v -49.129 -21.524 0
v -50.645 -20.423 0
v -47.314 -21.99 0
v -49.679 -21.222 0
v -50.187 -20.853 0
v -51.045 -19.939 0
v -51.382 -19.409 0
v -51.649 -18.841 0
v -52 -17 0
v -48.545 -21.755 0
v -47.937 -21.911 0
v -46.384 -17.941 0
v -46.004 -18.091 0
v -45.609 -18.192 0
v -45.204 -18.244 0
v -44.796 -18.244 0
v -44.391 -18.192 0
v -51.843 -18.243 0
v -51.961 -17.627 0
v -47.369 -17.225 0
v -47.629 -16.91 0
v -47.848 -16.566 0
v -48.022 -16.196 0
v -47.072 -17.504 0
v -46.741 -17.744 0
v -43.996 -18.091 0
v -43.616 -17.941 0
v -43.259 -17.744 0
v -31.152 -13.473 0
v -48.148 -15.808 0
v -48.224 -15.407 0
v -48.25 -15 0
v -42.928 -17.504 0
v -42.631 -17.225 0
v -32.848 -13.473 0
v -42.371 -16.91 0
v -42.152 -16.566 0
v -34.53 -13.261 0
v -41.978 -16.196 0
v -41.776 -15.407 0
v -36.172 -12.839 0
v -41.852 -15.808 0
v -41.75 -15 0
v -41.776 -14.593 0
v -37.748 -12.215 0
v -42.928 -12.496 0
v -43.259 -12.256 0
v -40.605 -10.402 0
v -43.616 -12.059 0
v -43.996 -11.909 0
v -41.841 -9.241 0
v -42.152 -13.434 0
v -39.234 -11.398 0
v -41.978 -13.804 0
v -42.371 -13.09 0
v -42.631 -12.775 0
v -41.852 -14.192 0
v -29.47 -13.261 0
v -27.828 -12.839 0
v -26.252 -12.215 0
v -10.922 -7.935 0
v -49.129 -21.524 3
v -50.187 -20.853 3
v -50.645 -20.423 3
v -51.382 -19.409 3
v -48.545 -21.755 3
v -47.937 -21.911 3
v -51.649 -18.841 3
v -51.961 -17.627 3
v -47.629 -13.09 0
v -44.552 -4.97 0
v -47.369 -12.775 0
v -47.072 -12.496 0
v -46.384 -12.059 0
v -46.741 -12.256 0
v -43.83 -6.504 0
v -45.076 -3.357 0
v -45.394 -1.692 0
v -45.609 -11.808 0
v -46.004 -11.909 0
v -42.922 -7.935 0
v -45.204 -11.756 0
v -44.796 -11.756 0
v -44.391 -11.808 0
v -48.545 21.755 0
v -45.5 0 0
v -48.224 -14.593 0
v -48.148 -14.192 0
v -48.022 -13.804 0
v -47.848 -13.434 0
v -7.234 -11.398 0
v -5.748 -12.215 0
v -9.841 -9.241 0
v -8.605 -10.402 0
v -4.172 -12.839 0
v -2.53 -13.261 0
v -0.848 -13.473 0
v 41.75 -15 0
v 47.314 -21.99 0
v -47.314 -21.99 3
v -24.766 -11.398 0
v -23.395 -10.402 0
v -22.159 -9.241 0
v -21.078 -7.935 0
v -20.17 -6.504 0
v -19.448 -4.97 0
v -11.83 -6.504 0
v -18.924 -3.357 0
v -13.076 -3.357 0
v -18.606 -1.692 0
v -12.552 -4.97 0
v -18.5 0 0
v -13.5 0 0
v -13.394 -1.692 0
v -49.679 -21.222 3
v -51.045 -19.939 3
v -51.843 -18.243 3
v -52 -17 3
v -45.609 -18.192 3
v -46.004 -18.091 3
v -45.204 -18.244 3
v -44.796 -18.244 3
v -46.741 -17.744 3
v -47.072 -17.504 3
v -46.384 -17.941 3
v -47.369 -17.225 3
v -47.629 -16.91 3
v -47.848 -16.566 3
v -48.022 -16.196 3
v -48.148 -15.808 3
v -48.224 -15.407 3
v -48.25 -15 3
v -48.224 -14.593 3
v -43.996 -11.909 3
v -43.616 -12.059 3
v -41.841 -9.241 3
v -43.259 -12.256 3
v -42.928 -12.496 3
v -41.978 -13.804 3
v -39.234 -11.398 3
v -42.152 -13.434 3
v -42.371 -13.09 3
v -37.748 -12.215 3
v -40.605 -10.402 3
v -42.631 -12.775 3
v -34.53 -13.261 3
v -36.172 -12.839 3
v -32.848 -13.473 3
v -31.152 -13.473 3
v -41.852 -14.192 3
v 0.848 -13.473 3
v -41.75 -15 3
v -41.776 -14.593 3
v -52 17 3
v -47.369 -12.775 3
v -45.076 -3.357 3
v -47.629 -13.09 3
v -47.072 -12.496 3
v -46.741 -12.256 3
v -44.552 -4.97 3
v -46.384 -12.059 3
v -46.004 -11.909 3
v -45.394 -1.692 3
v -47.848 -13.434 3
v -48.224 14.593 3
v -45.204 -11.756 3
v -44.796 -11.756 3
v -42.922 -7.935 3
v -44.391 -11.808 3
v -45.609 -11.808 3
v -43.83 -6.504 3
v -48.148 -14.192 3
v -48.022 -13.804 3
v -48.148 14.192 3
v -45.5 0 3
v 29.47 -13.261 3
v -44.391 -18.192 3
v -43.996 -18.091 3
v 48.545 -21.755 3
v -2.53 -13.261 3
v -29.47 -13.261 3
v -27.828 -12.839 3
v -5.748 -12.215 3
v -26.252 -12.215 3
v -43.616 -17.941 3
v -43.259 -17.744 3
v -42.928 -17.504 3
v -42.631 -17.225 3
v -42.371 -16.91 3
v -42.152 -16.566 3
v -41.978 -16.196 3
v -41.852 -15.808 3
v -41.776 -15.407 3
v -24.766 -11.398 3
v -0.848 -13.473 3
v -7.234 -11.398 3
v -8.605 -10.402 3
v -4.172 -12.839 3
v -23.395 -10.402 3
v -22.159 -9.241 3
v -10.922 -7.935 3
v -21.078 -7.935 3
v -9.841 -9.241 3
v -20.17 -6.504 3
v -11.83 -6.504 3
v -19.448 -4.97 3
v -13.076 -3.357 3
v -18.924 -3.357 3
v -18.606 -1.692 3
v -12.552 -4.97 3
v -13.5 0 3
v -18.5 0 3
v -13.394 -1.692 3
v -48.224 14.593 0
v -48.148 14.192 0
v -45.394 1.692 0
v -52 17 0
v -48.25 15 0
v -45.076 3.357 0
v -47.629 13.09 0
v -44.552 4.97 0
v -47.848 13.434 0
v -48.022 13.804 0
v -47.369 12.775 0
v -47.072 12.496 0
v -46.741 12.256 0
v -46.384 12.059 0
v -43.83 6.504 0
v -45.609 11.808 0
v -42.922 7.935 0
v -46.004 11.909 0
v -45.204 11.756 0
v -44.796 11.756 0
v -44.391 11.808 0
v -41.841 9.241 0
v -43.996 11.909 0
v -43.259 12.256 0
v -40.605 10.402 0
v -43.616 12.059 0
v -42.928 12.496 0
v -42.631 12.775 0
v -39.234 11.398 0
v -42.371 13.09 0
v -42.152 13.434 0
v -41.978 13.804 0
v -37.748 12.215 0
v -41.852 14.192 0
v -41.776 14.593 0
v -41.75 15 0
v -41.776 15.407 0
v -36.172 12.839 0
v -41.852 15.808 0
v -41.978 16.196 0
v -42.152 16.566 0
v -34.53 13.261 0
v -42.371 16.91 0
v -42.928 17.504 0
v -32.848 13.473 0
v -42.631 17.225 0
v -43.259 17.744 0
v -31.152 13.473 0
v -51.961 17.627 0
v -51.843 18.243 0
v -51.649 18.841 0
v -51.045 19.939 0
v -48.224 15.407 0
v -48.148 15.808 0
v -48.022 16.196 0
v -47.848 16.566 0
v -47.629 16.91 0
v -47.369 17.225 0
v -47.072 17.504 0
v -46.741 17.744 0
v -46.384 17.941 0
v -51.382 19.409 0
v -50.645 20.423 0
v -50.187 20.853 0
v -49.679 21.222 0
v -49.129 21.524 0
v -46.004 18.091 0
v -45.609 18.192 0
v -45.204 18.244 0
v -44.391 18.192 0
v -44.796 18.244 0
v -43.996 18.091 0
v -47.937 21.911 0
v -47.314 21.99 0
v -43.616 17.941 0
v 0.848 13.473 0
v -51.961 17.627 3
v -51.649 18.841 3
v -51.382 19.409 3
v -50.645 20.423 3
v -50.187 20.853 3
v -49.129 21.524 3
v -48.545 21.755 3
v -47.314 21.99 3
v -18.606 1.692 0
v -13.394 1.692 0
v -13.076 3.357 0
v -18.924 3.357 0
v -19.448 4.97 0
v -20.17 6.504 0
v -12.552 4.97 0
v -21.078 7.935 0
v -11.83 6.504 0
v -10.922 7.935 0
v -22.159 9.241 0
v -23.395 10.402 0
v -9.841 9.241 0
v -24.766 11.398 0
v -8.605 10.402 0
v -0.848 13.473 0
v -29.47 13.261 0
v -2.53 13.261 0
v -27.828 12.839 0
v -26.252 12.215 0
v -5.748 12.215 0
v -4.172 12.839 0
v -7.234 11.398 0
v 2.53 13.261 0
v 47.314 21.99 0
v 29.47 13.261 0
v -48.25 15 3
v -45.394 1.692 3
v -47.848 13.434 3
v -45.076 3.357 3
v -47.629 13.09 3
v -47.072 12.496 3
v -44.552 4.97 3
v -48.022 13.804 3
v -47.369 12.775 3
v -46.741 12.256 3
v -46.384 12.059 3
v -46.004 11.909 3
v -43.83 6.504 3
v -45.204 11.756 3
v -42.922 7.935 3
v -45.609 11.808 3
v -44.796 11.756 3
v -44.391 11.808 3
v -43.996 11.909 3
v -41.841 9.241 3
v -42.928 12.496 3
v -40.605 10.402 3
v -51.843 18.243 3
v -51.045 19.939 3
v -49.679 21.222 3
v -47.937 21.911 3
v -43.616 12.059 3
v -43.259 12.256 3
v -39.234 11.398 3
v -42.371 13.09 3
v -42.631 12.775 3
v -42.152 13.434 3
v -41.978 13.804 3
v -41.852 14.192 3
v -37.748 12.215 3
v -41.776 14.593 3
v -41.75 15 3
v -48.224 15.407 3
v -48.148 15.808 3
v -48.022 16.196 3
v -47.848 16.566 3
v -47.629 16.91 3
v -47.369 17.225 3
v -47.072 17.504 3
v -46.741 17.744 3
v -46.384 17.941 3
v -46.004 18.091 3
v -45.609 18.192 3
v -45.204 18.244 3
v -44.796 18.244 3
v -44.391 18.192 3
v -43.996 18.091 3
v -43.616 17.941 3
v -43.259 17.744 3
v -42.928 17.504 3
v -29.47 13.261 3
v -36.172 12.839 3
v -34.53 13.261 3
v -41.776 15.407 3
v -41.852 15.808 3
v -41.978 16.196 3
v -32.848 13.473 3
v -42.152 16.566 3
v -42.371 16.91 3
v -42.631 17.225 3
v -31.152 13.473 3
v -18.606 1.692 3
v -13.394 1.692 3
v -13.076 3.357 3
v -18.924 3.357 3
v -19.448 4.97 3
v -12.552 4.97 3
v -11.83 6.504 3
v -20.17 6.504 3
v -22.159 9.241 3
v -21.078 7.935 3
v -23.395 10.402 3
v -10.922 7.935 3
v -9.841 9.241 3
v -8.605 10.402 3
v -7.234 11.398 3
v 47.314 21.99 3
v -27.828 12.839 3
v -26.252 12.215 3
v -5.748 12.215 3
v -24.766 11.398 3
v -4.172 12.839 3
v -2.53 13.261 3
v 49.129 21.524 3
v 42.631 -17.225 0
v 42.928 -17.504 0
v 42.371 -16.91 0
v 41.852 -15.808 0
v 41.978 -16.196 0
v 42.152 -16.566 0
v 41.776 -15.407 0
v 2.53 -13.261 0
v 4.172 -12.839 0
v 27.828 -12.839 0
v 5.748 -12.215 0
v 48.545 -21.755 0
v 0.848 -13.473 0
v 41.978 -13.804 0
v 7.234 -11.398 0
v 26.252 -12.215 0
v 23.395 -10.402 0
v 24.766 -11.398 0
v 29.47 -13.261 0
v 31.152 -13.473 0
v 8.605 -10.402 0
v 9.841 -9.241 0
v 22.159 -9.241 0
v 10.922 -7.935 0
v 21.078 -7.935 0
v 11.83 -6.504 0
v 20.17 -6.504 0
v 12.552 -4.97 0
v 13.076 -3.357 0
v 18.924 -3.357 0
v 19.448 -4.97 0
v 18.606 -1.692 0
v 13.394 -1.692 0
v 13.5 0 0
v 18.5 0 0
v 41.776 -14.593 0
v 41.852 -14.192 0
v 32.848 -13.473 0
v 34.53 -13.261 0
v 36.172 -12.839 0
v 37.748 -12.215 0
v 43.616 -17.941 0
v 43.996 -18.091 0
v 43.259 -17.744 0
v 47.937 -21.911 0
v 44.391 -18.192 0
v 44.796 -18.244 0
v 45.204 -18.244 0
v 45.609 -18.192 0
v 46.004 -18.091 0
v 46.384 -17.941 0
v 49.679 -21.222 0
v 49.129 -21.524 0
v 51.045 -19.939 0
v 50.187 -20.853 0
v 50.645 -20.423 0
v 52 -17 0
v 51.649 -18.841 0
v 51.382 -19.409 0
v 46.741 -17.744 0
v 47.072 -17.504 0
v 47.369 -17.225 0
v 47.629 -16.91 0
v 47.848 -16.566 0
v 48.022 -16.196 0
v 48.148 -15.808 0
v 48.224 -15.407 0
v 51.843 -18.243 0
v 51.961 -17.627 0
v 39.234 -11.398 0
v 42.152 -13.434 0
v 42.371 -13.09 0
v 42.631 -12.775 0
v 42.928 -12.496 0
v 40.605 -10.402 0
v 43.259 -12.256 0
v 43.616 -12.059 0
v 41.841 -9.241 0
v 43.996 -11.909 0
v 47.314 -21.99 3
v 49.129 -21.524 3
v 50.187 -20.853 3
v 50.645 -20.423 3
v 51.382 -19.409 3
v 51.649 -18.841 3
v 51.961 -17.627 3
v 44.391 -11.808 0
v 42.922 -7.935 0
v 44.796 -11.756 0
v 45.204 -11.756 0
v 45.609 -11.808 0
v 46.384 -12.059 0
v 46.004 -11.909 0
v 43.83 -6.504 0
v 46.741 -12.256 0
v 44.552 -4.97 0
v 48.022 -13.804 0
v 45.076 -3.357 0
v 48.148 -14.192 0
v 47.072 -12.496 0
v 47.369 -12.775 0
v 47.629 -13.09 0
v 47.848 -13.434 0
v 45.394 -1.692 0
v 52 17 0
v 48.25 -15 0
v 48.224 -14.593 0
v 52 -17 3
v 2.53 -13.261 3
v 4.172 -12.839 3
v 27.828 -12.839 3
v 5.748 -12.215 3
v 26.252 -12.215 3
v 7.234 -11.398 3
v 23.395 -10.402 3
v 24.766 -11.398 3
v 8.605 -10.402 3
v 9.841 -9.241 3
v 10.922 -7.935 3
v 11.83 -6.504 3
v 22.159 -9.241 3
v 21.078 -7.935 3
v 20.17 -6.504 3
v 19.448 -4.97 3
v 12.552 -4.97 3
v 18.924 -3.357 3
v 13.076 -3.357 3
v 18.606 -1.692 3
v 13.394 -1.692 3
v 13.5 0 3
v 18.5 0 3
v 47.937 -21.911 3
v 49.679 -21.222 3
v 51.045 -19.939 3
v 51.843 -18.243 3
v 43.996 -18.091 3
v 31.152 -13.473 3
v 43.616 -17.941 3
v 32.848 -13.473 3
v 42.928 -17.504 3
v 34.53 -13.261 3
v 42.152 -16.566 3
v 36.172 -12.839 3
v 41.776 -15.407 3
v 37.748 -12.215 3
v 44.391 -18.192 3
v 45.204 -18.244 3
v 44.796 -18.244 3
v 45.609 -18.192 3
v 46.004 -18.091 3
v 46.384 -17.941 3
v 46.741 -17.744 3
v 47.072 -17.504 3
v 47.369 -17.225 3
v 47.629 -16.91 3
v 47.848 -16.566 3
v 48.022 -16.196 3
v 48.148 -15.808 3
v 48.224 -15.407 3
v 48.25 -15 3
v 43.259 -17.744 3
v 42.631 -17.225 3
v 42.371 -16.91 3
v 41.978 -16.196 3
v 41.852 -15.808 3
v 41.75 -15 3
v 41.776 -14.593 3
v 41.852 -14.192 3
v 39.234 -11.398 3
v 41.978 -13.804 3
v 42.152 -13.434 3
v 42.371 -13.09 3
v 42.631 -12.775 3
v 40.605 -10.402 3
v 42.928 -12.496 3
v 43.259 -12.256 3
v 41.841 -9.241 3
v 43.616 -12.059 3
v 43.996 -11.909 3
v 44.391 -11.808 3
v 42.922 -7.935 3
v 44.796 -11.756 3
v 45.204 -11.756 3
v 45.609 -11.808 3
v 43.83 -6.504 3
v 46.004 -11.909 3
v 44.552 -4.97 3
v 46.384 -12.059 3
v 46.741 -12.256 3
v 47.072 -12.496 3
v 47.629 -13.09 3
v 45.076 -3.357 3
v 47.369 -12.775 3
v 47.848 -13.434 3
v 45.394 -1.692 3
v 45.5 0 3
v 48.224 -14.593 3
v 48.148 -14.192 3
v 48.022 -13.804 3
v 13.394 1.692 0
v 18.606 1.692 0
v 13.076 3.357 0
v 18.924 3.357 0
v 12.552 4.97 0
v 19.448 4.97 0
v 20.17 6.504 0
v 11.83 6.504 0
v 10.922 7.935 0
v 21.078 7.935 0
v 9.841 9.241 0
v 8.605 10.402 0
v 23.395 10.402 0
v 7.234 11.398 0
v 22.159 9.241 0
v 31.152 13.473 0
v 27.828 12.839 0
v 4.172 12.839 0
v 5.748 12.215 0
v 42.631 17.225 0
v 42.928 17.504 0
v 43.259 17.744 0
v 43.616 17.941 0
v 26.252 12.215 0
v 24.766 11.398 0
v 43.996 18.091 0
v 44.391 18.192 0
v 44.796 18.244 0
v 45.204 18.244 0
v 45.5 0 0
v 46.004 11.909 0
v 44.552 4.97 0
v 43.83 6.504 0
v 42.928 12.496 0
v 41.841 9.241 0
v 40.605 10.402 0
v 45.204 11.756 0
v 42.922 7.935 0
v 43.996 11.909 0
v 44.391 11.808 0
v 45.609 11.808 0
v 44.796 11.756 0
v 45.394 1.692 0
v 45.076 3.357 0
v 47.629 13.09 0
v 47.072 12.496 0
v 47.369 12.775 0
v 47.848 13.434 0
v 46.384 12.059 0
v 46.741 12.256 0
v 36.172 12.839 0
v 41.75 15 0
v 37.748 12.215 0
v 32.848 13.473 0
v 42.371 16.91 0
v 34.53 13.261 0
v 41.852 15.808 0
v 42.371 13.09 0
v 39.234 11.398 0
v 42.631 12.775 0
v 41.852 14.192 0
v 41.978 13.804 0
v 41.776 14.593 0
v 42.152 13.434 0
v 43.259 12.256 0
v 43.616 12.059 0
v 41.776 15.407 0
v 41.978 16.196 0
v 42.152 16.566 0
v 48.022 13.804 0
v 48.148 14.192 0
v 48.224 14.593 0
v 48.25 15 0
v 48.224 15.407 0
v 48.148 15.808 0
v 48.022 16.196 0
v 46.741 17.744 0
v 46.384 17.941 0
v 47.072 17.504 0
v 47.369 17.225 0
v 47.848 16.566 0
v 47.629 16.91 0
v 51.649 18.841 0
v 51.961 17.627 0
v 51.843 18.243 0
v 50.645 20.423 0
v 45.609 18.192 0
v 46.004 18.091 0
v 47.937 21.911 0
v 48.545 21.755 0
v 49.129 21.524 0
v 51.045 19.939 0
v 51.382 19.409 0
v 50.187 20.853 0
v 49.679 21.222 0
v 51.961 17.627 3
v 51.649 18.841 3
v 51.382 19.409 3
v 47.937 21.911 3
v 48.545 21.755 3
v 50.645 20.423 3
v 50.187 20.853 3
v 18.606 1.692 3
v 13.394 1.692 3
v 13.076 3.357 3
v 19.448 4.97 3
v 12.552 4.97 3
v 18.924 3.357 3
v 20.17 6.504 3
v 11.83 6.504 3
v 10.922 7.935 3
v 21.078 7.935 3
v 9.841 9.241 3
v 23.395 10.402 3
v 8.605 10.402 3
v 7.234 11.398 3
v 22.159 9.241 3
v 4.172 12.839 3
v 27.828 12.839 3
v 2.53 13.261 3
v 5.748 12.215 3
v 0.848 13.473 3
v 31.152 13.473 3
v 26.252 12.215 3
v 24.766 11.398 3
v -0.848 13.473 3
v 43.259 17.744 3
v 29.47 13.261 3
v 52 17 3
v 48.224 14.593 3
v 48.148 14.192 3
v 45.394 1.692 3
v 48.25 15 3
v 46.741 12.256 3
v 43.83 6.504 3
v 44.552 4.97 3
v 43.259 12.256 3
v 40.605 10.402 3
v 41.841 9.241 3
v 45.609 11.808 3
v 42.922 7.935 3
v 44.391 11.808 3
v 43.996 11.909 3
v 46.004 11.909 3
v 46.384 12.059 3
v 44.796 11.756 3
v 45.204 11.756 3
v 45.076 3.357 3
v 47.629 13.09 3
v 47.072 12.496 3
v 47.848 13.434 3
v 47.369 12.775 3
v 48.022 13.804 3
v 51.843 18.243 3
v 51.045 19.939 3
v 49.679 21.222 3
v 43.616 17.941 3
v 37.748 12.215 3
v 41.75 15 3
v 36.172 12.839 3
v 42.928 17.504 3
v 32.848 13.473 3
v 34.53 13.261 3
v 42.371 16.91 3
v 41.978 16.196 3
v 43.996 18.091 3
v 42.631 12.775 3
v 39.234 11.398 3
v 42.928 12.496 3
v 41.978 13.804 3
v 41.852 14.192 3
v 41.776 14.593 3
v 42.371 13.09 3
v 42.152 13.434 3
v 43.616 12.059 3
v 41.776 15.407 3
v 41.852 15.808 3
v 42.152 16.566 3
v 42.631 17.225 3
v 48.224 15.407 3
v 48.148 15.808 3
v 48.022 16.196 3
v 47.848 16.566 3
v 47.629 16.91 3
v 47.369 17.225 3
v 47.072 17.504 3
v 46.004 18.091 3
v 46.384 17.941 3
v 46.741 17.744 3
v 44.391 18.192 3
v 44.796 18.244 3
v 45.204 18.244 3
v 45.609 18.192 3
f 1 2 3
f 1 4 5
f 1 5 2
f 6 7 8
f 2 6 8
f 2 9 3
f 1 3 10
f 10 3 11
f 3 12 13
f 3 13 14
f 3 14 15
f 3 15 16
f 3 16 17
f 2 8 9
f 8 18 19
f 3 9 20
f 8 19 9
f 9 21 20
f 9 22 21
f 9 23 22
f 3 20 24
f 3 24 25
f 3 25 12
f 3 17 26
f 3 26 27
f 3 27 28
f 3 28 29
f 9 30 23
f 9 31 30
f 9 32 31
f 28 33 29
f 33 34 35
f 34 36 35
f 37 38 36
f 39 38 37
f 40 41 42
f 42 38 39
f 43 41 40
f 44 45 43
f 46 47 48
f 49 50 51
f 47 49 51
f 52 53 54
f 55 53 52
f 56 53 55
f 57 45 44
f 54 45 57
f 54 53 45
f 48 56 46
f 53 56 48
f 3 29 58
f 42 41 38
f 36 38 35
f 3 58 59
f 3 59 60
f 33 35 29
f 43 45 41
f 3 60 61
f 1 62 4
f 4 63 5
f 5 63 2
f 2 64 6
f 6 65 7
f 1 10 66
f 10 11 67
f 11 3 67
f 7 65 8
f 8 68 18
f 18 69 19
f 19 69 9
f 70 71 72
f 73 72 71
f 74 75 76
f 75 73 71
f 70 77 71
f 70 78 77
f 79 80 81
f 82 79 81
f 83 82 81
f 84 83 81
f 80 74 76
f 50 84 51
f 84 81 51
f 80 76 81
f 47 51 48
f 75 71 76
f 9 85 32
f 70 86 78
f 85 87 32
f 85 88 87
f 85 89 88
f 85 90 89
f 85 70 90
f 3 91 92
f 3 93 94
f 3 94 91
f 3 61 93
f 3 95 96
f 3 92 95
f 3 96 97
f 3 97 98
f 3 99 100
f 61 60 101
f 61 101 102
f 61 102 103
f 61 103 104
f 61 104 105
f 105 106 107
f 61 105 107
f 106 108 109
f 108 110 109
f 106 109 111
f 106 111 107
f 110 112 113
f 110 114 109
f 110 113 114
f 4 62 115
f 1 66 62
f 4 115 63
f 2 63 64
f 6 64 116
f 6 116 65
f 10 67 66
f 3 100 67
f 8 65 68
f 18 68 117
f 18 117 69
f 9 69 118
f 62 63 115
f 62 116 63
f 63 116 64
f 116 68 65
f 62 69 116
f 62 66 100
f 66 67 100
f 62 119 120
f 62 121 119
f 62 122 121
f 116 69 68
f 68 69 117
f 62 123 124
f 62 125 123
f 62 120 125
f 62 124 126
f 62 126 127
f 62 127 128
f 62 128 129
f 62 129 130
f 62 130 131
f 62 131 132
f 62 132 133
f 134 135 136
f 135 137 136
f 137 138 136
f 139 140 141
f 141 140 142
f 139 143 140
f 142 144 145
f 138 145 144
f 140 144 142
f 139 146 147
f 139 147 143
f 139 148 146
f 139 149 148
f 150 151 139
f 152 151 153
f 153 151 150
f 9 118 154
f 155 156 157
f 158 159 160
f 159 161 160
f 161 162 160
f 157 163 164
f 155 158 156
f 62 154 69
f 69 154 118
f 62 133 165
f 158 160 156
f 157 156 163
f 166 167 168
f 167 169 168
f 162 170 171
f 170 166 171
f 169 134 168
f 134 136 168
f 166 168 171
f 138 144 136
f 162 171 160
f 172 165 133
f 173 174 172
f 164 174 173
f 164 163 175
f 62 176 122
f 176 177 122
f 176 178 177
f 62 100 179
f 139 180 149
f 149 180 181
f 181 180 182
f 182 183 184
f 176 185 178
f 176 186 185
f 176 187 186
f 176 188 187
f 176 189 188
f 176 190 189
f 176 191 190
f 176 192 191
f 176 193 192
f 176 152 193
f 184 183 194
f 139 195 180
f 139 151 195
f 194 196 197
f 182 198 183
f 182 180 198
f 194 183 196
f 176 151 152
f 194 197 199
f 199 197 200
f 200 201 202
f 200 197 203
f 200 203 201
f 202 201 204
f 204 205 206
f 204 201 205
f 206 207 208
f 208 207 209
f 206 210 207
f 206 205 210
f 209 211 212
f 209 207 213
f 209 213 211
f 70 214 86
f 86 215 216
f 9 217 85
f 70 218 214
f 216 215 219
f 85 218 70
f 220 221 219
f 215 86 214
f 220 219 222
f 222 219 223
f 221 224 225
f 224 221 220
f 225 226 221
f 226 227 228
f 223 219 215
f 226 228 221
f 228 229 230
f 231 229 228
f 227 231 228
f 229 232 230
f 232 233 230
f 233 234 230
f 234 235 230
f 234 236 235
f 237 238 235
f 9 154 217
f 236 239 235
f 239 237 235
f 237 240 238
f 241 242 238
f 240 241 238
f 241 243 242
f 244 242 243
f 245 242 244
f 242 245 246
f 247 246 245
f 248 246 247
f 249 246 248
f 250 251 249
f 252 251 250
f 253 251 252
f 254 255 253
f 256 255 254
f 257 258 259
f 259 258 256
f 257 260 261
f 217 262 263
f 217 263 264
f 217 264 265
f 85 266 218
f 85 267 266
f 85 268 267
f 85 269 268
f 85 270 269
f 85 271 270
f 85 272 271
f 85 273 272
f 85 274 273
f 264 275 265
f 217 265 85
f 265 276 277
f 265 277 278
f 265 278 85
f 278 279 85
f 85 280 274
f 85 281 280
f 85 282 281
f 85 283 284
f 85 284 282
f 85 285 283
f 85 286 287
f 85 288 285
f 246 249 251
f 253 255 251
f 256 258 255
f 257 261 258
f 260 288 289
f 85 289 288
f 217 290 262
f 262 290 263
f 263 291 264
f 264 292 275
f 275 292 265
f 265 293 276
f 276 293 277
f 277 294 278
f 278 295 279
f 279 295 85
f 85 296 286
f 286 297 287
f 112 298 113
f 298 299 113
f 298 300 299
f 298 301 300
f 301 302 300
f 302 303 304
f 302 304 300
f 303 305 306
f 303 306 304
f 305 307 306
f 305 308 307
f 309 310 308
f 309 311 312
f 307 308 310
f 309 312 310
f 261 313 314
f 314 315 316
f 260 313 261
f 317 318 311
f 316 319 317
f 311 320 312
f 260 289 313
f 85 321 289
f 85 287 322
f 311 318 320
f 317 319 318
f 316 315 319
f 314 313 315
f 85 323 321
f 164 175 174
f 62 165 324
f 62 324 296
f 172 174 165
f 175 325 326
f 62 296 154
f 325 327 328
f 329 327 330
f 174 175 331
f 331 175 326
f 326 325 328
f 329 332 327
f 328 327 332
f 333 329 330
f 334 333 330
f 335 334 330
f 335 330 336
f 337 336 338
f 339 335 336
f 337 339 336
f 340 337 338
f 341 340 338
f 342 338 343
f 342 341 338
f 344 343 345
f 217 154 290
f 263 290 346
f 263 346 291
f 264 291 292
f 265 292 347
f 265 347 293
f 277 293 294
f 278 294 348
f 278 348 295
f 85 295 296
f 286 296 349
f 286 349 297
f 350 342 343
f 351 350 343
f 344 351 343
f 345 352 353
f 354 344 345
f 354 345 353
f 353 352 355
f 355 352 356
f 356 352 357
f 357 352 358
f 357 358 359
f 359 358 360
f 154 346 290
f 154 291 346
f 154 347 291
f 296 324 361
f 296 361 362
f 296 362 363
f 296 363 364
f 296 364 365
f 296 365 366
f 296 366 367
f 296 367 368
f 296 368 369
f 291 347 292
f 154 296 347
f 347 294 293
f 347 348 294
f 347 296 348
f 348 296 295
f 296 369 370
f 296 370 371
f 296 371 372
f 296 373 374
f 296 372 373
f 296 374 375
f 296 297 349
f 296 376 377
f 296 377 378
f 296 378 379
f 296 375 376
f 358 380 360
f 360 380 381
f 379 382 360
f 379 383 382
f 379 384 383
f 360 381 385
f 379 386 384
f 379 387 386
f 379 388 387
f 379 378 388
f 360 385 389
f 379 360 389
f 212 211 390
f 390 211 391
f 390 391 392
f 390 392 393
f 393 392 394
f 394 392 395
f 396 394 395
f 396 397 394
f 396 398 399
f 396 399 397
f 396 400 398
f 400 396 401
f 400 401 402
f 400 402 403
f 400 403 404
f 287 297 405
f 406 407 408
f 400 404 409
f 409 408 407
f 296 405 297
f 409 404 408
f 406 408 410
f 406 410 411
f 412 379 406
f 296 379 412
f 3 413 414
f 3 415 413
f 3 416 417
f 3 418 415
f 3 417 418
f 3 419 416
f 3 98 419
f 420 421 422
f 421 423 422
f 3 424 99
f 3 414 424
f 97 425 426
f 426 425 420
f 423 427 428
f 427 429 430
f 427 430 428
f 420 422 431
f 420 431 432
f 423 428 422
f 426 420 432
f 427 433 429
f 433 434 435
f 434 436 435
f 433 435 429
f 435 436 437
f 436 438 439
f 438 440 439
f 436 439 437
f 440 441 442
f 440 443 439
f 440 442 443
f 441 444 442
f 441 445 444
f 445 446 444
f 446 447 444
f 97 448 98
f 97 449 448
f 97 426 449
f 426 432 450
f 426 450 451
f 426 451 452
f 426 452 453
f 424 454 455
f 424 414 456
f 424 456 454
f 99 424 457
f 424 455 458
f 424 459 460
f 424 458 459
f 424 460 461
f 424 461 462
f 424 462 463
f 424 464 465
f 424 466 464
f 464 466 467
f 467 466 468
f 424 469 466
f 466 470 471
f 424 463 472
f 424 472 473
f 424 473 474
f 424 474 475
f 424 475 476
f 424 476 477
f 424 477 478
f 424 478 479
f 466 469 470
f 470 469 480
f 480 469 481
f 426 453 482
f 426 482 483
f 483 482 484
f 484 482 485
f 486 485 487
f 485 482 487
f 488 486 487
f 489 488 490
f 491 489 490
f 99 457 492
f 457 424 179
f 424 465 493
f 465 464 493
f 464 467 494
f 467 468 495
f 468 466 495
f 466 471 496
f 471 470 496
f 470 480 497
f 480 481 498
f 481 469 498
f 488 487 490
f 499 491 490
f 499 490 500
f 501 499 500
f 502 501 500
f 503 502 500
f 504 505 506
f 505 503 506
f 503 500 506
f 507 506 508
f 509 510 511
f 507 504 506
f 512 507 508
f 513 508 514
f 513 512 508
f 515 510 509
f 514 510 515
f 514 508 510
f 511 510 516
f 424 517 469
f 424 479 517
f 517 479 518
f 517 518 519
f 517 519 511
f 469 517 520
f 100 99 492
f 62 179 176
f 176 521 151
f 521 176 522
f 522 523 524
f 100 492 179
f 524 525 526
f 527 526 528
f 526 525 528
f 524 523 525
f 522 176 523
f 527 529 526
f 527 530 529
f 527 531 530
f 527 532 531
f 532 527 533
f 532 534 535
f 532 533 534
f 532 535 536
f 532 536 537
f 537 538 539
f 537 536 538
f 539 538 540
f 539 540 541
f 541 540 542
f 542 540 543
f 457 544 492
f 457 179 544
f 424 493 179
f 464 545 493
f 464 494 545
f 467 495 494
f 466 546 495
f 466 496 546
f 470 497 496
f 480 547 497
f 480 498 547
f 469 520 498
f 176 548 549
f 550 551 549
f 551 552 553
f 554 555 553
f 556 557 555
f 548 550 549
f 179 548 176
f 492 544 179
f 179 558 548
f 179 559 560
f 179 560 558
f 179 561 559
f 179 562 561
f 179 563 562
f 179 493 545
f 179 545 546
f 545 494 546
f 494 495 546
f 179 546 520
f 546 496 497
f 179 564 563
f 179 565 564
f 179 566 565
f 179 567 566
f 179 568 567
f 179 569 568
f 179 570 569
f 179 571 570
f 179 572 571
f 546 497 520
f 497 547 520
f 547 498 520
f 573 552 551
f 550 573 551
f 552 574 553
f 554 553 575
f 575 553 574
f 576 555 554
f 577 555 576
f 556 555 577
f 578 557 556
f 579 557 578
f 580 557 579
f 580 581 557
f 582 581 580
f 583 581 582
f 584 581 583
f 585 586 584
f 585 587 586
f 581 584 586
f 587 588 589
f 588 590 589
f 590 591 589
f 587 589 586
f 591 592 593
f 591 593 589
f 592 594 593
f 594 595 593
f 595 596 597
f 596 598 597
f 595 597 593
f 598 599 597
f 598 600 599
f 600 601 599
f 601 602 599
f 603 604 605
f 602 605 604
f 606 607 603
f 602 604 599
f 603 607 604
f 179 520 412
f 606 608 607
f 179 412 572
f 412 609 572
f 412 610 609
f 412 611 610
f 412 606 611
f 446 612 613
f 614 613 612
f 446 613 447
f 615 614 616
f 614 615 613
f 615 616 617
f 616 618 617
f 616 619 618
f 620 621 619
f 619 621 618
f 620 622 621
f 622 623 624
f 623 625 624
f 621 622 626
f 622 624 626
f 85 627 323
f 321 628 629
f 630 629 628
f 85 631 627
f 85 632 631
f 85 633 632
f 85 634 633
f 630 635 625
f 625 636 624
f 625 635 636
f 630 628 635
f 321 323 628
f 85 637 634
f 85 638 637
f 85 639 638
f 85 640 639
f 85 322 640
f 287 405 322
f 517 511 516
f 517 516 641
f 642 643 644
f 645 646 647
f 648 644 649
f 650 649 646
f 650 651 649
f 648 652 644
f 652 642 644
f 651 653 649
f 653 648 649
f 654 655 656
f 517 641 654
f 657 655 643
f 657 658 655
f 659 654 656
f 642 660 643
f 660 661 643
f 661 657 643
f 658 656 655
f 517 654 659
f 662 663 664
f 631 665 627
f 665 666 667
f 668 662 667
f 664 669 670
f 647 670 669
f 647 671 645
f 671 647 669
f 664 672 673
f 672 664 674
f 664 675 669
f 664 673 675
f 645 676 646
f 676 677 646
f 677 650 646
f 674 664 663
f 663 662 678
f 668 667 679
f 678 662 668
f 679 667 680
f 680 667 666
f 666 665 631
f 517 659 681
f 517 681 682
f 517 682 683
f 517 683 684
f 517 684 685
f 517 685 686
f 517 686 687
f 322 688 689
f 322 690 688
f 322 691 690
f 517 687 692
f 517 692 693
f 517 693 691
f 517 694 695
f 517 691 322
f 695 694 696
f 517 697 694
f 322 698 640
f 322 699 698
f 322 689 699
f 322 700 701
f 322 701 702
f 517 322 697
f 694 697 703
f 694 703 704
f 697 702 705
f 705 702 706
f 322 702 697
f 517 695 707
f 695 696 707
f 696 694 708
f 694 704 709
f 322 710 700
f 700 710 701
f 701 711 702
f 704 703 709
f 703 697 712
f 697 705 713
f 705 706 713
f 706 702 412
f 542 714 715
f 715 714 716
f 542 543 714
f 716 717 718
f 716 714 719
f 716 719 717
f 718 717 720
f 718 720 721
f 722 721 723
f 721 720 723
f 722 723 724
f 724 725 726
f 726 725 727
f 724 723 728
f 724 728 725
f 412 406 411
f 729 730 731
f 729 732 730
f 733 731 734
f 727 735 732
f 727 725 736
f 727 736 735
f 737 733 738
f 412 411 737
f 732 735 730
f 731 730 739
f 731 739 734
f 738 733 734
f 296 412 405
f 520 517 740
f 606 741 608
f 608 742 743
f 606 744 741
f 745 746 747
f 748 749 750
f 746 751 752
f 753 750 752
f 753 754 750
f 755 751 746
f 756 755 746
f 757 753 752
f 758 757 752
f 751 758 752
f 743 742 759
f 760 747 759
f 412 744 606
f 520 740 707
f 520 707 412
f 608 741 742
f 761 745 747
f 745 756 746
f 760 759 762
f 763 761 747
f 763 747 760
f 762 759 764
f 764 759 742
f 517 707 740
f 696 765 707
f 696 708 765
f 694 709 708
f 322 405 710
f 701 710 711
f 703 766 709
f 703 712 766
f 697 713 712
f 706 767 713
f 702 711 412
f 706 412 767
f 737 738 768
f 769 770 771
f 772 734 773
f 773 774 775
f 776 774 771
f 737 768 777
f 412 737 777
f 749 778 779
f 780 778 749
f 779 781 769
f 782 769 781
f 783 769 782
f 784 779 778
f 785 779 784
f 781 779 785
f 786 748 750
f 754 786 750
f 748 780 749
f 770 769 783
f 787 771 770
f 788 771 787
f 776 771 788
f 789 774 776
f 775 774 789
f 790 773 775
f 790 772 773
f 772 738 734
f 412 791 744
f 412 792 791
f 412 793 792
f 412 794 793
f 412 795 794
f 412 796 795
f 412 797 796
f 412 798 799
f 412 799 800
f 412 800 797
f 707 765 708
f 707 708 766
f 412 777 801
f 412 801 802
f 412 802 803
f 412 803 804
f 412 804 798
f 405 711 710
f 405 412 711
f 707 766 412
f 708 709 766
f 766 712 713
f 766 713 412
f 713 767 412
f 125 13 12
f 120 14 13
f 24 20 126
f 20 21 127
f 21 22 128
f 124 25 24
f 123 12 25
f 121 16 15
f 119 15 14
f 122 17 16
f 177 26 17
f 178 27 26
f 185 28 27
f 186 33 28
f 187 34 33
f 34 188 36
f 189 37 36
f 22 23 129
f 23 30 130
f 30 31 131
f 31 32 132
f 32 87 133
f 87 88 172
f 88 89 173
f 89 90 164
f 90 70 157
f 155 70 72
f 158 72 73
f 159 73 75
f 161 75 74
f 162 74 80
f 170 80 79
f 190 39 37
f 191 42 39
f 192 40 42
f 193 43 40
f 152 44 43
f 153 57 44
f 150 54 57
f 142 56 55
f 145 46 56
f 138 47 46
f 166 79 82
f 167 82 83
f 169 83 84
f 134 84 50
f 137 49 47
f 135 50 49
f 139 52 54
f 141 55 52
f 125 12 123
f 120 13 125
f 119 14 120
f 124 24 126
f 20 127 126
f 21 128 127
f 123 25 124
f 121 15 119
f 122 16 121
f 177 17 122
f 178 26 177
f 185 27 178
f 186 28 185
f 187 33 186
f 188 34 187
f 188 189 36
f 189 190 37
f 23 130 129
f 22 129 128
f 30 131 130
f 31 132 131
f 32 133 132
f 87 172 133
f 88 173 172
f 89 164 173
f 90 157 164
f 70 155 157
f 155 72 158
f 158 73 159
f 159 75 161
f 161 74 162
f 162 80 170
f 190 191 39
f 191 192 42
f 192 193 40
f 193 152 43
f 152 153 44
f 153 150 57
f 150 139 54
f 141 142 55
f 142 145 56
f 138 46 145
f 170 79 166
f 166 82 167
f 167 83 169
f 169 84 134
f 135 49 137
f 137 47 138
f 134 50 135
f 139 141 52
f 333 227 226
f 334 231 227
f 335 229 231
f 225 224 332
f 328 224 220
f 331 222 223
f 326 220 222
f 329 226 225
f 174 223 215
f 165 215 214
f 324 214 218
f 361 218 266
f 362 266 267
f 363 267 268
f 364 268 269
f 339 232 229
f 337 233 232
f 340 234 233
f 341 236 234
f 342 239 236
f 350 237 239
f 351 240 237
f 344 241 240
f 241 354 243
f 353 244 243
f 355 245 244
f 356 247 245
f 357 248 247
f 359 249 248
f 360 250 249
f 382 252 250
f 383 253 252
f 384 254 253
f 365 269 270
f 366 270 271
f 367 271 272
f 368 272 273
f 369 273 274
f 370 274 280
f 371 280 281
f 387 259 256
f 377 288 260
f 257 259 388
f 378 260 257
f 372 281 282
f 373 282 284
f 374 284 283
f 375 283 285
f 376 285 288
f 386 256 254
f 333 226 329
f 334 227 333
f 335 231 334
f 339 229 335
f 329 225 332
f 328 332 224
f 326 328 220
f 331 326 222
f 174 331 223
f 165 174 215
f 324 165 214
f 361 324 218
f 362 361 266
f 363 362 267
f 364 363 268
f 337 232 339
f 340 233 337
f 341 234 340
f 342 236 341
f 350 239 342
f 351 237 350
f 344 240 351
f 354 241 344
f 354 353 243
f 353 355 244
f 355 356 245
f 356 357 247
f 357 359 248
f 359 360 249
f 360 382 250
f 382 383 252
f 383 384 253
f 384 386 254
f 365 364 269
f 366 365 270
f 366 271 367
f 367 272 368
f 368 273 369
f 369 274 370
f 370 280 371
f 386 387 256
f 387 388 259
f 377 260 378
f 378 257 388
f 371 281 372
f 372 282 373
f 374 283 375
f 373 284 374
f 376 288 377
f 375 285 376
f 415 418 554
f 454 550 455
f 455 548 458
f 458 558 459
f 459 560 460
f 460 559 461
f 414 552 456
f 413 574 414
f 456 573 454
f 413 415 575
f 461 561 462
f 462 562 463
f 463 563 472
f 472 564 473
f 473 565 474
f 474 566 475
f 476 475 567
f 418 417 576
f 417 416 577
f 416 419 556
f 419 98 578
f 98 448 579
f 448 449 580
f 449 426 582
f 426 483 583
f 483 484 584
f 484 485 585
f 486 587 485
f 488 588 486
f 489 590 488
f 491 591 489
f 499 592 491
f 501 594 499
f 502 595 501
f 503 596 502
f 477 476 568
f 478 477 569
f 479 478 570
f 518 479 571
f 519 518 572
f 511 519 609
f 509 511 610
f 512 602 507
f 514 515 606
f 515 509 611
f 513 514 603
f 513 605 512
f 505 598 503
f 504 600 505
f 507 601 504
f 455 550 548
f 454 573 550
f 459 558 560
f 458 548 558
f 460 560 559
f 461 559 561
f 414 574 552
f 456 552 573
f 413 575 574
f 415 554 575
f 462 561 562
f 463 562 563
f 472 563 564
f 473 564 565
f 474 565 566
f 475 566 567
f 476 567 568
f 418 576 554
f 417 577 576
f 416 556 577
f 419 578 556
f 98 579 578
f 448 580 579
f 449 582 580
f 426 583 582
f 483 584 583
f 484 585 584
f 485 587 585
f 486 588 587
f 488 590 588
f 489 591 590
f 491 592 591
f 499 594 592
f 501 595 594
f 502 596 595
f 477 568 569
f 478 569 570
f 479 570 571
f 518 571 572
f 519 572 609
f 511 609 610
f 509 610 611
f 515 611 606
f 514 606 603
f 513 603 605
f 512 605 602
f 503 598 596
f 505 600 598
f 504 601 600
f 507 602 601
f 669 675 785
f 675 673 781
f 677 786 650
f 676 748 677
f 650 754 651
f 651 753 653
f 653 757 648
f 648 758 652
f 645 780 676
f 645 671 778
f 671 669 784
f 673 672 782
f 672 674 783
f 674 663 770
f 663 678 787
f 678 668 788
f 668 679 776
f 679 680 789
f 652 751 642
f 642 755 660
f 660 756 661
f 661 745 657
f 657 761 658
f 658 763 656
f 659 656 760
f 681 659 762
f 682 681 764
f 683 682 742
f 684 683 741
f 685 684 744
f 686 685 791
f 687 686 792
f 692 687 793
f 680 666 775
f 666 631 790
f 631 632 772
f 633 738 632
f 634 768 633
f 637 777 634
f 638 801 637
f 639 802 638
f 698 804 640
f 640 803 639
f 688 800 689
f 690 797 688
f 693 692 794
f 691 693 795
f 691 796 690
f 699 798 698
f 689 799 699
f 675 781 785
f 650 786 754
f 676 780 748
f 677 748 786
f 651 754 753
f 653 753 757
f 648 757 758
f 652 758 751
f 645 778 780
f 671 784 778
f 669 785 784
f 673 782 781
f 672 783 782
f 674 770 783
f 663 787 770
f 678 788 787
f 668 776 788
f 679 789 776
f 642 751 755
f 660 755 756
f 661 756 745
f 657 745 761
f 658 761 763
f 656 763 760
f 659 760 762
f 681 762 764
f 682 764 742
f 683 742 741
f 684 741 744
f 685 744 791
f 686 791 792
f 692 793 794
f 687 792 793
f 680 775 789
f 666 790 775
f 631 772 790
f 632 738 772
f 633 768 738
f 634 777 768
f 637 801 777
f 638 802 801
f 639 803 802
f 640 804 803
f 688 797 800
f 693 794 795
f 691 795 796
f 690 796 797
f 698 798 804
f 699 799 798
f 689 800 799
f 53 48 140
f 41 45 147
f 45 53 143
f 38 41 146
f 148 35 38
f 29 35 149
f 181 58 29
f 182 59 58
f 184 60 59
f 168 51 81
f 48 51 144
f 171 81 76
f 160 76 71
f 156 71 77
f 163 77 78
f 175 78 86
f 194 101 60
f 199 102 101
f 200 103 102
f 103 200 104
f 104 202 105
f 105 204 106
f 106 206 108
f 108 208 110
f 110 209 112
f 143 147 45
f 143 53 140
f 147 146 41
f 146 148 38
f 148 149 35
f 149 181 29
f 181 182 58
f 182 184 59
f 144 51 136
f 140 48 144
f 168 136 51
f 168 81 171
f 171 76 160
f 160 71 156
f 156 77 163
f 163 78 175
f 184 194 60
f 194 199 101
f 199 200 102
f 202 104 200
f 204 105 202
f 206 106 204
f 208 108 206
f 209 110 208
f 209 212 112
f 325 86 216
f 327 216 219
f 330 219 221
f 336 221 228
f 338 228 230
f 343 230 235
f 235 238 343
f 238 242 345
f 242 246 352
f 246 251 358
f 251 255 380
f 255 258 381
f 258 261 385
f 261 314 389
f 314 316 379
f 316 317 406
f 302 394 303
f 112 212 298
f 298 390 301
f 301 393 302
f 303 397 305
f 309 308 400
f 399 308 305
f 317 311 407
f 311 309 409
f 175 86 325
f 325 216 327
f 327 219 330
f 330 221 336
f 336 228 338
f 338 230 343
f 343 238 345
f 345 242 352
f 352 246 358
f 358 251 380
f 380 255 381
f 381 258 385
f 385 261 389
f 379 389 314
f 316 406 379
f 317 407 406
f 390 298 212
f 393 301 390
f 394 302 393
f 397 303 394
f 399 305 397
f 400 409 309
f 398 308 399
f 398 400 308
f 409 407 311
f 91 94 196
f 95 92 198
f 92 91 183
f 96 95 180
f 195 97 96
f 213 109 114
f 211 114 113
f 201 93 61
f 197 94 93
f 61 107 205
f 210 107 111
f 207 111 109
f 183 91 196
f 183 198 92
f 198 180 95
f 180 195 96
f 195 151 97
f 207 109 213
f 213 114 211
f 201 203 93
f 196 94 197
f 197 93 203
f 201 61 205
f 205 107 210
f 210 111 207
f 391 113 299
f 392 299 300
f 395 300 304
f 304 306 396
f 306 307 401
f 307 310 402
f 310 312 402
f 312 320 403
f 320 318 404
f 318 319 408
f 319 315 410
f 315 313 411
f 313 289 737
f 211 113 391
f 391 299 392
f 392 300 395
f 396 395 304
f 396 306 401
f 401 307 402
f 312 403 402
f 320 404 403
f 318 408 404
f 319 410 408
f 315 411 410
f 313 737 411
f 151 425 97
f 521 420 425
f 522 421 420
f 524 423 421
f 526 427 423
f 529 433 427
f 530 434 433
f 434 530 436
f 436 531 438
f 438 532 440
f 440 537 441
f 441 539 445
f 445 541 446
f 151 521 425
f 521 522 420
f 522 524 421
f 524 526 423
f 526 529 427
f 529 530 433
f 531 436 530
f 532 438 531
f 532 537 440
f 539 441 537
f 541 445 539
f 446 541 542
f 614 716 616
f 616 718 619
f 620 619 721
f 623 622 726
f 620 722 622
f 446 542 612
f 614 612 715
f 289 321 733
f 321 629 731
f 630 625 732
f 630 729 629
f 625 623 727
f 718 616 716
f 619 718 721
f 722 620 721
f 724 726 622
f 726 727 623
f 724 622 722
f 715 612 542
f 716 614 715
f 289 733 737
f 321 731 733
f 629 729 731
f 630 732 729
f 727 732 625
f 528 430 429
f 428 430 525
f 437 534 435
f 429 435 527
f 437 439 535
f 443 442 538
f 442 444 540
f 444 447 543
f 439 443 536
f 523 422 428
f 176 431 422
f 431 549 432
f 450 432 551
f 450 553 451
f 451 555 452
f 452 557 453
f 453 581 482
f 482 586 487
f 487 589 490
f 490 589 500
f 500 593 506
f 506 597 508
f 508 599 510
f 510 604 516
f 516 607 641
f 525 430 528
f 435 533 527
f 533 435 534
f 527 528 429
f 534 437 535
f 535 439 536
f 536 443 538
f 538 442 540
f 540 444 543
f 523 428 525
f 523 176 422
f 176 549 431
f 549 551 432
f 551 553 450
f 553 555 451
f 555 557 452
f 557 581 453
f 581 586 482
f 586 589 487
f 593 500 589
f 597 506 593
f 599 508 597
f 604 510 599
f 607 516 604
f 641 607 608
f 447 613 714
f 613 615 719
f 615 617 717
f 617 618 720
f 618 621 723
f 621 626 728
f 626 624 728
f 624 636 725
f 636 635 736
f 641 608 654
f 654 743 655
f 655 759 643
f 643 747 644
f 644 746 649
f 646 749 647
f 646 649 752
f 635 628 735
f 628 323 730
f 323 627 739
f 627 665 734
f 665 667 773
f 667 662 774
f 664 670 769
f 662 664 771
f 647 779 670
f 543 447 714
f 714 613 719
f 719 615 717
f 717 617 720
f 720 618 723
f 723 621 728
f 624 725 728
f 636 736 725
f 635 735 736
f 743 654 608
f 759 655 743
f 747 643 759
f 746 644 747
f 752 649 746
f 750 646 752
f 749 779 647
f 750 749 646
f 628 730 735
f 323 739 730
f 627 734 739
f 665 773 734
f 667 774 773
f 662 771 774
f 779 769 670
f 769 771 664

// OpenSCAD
$fn = 50;

difference() {
	union() {
		hull() {
			translate(v = [-47.0, 17.0, 0]) {
				cylinder(h = 3, r = 5);
			}
			translate(v = [47.0, 17.0, 0]) {
				cylinder(h = 3, r = 5);
			}
			translate(v = [-47.0, -17.0, 0]) {
				cylinder(h = 3, r = 5);
			}
			translate(v = [47.0, -17.0, 0]) {
				cylinder(h = 3, r = 5);
			}
		}
	}
	union() {
		translate(v = [-45.0, -15.0, -100.0]) {
			cylinder(h = 200, r = 3.25);
		}
		translate(v = [-45.0, 15.0, -100.0]) {
			cylinder(h = 200, r = 3.25);
		}
		translate(v = [45.0, -15.0, -100.0]) {
			cylinder(h = 200, r = 3.25);
		}
		translate(v = [45.0, 15.0, -100.0]) {
			cylinder(h = 200, r = 3.25);
		}
		translate(v = [-45.0, -15.0, -100.0]) {
			cylinder(h = 200, r = 1.8);
		}
		translate(v = [-45.0, 15.0, -100.0]) {
			cylinder(h = 200, r = 1.8);
		}
		translate(v = [45.0, -15.0, -100.0]) {
			cylinder(h = 200, r = 1.8);
		}
		translate(v = [45.0, 15.0, -100.0]) {
			cylinder(h = 200, r = 1.8);
		}
		translate(v = [-32.0, 0, 0.0]) {
			cylinder(h = 3, r = 13.5);
		}
		cylinder(h = 3, r = 13.5);
		translate(v = [32.0, 0, 0.0]) {
			cylinder(h = 3, r = 13.5);
		}
	}
}
